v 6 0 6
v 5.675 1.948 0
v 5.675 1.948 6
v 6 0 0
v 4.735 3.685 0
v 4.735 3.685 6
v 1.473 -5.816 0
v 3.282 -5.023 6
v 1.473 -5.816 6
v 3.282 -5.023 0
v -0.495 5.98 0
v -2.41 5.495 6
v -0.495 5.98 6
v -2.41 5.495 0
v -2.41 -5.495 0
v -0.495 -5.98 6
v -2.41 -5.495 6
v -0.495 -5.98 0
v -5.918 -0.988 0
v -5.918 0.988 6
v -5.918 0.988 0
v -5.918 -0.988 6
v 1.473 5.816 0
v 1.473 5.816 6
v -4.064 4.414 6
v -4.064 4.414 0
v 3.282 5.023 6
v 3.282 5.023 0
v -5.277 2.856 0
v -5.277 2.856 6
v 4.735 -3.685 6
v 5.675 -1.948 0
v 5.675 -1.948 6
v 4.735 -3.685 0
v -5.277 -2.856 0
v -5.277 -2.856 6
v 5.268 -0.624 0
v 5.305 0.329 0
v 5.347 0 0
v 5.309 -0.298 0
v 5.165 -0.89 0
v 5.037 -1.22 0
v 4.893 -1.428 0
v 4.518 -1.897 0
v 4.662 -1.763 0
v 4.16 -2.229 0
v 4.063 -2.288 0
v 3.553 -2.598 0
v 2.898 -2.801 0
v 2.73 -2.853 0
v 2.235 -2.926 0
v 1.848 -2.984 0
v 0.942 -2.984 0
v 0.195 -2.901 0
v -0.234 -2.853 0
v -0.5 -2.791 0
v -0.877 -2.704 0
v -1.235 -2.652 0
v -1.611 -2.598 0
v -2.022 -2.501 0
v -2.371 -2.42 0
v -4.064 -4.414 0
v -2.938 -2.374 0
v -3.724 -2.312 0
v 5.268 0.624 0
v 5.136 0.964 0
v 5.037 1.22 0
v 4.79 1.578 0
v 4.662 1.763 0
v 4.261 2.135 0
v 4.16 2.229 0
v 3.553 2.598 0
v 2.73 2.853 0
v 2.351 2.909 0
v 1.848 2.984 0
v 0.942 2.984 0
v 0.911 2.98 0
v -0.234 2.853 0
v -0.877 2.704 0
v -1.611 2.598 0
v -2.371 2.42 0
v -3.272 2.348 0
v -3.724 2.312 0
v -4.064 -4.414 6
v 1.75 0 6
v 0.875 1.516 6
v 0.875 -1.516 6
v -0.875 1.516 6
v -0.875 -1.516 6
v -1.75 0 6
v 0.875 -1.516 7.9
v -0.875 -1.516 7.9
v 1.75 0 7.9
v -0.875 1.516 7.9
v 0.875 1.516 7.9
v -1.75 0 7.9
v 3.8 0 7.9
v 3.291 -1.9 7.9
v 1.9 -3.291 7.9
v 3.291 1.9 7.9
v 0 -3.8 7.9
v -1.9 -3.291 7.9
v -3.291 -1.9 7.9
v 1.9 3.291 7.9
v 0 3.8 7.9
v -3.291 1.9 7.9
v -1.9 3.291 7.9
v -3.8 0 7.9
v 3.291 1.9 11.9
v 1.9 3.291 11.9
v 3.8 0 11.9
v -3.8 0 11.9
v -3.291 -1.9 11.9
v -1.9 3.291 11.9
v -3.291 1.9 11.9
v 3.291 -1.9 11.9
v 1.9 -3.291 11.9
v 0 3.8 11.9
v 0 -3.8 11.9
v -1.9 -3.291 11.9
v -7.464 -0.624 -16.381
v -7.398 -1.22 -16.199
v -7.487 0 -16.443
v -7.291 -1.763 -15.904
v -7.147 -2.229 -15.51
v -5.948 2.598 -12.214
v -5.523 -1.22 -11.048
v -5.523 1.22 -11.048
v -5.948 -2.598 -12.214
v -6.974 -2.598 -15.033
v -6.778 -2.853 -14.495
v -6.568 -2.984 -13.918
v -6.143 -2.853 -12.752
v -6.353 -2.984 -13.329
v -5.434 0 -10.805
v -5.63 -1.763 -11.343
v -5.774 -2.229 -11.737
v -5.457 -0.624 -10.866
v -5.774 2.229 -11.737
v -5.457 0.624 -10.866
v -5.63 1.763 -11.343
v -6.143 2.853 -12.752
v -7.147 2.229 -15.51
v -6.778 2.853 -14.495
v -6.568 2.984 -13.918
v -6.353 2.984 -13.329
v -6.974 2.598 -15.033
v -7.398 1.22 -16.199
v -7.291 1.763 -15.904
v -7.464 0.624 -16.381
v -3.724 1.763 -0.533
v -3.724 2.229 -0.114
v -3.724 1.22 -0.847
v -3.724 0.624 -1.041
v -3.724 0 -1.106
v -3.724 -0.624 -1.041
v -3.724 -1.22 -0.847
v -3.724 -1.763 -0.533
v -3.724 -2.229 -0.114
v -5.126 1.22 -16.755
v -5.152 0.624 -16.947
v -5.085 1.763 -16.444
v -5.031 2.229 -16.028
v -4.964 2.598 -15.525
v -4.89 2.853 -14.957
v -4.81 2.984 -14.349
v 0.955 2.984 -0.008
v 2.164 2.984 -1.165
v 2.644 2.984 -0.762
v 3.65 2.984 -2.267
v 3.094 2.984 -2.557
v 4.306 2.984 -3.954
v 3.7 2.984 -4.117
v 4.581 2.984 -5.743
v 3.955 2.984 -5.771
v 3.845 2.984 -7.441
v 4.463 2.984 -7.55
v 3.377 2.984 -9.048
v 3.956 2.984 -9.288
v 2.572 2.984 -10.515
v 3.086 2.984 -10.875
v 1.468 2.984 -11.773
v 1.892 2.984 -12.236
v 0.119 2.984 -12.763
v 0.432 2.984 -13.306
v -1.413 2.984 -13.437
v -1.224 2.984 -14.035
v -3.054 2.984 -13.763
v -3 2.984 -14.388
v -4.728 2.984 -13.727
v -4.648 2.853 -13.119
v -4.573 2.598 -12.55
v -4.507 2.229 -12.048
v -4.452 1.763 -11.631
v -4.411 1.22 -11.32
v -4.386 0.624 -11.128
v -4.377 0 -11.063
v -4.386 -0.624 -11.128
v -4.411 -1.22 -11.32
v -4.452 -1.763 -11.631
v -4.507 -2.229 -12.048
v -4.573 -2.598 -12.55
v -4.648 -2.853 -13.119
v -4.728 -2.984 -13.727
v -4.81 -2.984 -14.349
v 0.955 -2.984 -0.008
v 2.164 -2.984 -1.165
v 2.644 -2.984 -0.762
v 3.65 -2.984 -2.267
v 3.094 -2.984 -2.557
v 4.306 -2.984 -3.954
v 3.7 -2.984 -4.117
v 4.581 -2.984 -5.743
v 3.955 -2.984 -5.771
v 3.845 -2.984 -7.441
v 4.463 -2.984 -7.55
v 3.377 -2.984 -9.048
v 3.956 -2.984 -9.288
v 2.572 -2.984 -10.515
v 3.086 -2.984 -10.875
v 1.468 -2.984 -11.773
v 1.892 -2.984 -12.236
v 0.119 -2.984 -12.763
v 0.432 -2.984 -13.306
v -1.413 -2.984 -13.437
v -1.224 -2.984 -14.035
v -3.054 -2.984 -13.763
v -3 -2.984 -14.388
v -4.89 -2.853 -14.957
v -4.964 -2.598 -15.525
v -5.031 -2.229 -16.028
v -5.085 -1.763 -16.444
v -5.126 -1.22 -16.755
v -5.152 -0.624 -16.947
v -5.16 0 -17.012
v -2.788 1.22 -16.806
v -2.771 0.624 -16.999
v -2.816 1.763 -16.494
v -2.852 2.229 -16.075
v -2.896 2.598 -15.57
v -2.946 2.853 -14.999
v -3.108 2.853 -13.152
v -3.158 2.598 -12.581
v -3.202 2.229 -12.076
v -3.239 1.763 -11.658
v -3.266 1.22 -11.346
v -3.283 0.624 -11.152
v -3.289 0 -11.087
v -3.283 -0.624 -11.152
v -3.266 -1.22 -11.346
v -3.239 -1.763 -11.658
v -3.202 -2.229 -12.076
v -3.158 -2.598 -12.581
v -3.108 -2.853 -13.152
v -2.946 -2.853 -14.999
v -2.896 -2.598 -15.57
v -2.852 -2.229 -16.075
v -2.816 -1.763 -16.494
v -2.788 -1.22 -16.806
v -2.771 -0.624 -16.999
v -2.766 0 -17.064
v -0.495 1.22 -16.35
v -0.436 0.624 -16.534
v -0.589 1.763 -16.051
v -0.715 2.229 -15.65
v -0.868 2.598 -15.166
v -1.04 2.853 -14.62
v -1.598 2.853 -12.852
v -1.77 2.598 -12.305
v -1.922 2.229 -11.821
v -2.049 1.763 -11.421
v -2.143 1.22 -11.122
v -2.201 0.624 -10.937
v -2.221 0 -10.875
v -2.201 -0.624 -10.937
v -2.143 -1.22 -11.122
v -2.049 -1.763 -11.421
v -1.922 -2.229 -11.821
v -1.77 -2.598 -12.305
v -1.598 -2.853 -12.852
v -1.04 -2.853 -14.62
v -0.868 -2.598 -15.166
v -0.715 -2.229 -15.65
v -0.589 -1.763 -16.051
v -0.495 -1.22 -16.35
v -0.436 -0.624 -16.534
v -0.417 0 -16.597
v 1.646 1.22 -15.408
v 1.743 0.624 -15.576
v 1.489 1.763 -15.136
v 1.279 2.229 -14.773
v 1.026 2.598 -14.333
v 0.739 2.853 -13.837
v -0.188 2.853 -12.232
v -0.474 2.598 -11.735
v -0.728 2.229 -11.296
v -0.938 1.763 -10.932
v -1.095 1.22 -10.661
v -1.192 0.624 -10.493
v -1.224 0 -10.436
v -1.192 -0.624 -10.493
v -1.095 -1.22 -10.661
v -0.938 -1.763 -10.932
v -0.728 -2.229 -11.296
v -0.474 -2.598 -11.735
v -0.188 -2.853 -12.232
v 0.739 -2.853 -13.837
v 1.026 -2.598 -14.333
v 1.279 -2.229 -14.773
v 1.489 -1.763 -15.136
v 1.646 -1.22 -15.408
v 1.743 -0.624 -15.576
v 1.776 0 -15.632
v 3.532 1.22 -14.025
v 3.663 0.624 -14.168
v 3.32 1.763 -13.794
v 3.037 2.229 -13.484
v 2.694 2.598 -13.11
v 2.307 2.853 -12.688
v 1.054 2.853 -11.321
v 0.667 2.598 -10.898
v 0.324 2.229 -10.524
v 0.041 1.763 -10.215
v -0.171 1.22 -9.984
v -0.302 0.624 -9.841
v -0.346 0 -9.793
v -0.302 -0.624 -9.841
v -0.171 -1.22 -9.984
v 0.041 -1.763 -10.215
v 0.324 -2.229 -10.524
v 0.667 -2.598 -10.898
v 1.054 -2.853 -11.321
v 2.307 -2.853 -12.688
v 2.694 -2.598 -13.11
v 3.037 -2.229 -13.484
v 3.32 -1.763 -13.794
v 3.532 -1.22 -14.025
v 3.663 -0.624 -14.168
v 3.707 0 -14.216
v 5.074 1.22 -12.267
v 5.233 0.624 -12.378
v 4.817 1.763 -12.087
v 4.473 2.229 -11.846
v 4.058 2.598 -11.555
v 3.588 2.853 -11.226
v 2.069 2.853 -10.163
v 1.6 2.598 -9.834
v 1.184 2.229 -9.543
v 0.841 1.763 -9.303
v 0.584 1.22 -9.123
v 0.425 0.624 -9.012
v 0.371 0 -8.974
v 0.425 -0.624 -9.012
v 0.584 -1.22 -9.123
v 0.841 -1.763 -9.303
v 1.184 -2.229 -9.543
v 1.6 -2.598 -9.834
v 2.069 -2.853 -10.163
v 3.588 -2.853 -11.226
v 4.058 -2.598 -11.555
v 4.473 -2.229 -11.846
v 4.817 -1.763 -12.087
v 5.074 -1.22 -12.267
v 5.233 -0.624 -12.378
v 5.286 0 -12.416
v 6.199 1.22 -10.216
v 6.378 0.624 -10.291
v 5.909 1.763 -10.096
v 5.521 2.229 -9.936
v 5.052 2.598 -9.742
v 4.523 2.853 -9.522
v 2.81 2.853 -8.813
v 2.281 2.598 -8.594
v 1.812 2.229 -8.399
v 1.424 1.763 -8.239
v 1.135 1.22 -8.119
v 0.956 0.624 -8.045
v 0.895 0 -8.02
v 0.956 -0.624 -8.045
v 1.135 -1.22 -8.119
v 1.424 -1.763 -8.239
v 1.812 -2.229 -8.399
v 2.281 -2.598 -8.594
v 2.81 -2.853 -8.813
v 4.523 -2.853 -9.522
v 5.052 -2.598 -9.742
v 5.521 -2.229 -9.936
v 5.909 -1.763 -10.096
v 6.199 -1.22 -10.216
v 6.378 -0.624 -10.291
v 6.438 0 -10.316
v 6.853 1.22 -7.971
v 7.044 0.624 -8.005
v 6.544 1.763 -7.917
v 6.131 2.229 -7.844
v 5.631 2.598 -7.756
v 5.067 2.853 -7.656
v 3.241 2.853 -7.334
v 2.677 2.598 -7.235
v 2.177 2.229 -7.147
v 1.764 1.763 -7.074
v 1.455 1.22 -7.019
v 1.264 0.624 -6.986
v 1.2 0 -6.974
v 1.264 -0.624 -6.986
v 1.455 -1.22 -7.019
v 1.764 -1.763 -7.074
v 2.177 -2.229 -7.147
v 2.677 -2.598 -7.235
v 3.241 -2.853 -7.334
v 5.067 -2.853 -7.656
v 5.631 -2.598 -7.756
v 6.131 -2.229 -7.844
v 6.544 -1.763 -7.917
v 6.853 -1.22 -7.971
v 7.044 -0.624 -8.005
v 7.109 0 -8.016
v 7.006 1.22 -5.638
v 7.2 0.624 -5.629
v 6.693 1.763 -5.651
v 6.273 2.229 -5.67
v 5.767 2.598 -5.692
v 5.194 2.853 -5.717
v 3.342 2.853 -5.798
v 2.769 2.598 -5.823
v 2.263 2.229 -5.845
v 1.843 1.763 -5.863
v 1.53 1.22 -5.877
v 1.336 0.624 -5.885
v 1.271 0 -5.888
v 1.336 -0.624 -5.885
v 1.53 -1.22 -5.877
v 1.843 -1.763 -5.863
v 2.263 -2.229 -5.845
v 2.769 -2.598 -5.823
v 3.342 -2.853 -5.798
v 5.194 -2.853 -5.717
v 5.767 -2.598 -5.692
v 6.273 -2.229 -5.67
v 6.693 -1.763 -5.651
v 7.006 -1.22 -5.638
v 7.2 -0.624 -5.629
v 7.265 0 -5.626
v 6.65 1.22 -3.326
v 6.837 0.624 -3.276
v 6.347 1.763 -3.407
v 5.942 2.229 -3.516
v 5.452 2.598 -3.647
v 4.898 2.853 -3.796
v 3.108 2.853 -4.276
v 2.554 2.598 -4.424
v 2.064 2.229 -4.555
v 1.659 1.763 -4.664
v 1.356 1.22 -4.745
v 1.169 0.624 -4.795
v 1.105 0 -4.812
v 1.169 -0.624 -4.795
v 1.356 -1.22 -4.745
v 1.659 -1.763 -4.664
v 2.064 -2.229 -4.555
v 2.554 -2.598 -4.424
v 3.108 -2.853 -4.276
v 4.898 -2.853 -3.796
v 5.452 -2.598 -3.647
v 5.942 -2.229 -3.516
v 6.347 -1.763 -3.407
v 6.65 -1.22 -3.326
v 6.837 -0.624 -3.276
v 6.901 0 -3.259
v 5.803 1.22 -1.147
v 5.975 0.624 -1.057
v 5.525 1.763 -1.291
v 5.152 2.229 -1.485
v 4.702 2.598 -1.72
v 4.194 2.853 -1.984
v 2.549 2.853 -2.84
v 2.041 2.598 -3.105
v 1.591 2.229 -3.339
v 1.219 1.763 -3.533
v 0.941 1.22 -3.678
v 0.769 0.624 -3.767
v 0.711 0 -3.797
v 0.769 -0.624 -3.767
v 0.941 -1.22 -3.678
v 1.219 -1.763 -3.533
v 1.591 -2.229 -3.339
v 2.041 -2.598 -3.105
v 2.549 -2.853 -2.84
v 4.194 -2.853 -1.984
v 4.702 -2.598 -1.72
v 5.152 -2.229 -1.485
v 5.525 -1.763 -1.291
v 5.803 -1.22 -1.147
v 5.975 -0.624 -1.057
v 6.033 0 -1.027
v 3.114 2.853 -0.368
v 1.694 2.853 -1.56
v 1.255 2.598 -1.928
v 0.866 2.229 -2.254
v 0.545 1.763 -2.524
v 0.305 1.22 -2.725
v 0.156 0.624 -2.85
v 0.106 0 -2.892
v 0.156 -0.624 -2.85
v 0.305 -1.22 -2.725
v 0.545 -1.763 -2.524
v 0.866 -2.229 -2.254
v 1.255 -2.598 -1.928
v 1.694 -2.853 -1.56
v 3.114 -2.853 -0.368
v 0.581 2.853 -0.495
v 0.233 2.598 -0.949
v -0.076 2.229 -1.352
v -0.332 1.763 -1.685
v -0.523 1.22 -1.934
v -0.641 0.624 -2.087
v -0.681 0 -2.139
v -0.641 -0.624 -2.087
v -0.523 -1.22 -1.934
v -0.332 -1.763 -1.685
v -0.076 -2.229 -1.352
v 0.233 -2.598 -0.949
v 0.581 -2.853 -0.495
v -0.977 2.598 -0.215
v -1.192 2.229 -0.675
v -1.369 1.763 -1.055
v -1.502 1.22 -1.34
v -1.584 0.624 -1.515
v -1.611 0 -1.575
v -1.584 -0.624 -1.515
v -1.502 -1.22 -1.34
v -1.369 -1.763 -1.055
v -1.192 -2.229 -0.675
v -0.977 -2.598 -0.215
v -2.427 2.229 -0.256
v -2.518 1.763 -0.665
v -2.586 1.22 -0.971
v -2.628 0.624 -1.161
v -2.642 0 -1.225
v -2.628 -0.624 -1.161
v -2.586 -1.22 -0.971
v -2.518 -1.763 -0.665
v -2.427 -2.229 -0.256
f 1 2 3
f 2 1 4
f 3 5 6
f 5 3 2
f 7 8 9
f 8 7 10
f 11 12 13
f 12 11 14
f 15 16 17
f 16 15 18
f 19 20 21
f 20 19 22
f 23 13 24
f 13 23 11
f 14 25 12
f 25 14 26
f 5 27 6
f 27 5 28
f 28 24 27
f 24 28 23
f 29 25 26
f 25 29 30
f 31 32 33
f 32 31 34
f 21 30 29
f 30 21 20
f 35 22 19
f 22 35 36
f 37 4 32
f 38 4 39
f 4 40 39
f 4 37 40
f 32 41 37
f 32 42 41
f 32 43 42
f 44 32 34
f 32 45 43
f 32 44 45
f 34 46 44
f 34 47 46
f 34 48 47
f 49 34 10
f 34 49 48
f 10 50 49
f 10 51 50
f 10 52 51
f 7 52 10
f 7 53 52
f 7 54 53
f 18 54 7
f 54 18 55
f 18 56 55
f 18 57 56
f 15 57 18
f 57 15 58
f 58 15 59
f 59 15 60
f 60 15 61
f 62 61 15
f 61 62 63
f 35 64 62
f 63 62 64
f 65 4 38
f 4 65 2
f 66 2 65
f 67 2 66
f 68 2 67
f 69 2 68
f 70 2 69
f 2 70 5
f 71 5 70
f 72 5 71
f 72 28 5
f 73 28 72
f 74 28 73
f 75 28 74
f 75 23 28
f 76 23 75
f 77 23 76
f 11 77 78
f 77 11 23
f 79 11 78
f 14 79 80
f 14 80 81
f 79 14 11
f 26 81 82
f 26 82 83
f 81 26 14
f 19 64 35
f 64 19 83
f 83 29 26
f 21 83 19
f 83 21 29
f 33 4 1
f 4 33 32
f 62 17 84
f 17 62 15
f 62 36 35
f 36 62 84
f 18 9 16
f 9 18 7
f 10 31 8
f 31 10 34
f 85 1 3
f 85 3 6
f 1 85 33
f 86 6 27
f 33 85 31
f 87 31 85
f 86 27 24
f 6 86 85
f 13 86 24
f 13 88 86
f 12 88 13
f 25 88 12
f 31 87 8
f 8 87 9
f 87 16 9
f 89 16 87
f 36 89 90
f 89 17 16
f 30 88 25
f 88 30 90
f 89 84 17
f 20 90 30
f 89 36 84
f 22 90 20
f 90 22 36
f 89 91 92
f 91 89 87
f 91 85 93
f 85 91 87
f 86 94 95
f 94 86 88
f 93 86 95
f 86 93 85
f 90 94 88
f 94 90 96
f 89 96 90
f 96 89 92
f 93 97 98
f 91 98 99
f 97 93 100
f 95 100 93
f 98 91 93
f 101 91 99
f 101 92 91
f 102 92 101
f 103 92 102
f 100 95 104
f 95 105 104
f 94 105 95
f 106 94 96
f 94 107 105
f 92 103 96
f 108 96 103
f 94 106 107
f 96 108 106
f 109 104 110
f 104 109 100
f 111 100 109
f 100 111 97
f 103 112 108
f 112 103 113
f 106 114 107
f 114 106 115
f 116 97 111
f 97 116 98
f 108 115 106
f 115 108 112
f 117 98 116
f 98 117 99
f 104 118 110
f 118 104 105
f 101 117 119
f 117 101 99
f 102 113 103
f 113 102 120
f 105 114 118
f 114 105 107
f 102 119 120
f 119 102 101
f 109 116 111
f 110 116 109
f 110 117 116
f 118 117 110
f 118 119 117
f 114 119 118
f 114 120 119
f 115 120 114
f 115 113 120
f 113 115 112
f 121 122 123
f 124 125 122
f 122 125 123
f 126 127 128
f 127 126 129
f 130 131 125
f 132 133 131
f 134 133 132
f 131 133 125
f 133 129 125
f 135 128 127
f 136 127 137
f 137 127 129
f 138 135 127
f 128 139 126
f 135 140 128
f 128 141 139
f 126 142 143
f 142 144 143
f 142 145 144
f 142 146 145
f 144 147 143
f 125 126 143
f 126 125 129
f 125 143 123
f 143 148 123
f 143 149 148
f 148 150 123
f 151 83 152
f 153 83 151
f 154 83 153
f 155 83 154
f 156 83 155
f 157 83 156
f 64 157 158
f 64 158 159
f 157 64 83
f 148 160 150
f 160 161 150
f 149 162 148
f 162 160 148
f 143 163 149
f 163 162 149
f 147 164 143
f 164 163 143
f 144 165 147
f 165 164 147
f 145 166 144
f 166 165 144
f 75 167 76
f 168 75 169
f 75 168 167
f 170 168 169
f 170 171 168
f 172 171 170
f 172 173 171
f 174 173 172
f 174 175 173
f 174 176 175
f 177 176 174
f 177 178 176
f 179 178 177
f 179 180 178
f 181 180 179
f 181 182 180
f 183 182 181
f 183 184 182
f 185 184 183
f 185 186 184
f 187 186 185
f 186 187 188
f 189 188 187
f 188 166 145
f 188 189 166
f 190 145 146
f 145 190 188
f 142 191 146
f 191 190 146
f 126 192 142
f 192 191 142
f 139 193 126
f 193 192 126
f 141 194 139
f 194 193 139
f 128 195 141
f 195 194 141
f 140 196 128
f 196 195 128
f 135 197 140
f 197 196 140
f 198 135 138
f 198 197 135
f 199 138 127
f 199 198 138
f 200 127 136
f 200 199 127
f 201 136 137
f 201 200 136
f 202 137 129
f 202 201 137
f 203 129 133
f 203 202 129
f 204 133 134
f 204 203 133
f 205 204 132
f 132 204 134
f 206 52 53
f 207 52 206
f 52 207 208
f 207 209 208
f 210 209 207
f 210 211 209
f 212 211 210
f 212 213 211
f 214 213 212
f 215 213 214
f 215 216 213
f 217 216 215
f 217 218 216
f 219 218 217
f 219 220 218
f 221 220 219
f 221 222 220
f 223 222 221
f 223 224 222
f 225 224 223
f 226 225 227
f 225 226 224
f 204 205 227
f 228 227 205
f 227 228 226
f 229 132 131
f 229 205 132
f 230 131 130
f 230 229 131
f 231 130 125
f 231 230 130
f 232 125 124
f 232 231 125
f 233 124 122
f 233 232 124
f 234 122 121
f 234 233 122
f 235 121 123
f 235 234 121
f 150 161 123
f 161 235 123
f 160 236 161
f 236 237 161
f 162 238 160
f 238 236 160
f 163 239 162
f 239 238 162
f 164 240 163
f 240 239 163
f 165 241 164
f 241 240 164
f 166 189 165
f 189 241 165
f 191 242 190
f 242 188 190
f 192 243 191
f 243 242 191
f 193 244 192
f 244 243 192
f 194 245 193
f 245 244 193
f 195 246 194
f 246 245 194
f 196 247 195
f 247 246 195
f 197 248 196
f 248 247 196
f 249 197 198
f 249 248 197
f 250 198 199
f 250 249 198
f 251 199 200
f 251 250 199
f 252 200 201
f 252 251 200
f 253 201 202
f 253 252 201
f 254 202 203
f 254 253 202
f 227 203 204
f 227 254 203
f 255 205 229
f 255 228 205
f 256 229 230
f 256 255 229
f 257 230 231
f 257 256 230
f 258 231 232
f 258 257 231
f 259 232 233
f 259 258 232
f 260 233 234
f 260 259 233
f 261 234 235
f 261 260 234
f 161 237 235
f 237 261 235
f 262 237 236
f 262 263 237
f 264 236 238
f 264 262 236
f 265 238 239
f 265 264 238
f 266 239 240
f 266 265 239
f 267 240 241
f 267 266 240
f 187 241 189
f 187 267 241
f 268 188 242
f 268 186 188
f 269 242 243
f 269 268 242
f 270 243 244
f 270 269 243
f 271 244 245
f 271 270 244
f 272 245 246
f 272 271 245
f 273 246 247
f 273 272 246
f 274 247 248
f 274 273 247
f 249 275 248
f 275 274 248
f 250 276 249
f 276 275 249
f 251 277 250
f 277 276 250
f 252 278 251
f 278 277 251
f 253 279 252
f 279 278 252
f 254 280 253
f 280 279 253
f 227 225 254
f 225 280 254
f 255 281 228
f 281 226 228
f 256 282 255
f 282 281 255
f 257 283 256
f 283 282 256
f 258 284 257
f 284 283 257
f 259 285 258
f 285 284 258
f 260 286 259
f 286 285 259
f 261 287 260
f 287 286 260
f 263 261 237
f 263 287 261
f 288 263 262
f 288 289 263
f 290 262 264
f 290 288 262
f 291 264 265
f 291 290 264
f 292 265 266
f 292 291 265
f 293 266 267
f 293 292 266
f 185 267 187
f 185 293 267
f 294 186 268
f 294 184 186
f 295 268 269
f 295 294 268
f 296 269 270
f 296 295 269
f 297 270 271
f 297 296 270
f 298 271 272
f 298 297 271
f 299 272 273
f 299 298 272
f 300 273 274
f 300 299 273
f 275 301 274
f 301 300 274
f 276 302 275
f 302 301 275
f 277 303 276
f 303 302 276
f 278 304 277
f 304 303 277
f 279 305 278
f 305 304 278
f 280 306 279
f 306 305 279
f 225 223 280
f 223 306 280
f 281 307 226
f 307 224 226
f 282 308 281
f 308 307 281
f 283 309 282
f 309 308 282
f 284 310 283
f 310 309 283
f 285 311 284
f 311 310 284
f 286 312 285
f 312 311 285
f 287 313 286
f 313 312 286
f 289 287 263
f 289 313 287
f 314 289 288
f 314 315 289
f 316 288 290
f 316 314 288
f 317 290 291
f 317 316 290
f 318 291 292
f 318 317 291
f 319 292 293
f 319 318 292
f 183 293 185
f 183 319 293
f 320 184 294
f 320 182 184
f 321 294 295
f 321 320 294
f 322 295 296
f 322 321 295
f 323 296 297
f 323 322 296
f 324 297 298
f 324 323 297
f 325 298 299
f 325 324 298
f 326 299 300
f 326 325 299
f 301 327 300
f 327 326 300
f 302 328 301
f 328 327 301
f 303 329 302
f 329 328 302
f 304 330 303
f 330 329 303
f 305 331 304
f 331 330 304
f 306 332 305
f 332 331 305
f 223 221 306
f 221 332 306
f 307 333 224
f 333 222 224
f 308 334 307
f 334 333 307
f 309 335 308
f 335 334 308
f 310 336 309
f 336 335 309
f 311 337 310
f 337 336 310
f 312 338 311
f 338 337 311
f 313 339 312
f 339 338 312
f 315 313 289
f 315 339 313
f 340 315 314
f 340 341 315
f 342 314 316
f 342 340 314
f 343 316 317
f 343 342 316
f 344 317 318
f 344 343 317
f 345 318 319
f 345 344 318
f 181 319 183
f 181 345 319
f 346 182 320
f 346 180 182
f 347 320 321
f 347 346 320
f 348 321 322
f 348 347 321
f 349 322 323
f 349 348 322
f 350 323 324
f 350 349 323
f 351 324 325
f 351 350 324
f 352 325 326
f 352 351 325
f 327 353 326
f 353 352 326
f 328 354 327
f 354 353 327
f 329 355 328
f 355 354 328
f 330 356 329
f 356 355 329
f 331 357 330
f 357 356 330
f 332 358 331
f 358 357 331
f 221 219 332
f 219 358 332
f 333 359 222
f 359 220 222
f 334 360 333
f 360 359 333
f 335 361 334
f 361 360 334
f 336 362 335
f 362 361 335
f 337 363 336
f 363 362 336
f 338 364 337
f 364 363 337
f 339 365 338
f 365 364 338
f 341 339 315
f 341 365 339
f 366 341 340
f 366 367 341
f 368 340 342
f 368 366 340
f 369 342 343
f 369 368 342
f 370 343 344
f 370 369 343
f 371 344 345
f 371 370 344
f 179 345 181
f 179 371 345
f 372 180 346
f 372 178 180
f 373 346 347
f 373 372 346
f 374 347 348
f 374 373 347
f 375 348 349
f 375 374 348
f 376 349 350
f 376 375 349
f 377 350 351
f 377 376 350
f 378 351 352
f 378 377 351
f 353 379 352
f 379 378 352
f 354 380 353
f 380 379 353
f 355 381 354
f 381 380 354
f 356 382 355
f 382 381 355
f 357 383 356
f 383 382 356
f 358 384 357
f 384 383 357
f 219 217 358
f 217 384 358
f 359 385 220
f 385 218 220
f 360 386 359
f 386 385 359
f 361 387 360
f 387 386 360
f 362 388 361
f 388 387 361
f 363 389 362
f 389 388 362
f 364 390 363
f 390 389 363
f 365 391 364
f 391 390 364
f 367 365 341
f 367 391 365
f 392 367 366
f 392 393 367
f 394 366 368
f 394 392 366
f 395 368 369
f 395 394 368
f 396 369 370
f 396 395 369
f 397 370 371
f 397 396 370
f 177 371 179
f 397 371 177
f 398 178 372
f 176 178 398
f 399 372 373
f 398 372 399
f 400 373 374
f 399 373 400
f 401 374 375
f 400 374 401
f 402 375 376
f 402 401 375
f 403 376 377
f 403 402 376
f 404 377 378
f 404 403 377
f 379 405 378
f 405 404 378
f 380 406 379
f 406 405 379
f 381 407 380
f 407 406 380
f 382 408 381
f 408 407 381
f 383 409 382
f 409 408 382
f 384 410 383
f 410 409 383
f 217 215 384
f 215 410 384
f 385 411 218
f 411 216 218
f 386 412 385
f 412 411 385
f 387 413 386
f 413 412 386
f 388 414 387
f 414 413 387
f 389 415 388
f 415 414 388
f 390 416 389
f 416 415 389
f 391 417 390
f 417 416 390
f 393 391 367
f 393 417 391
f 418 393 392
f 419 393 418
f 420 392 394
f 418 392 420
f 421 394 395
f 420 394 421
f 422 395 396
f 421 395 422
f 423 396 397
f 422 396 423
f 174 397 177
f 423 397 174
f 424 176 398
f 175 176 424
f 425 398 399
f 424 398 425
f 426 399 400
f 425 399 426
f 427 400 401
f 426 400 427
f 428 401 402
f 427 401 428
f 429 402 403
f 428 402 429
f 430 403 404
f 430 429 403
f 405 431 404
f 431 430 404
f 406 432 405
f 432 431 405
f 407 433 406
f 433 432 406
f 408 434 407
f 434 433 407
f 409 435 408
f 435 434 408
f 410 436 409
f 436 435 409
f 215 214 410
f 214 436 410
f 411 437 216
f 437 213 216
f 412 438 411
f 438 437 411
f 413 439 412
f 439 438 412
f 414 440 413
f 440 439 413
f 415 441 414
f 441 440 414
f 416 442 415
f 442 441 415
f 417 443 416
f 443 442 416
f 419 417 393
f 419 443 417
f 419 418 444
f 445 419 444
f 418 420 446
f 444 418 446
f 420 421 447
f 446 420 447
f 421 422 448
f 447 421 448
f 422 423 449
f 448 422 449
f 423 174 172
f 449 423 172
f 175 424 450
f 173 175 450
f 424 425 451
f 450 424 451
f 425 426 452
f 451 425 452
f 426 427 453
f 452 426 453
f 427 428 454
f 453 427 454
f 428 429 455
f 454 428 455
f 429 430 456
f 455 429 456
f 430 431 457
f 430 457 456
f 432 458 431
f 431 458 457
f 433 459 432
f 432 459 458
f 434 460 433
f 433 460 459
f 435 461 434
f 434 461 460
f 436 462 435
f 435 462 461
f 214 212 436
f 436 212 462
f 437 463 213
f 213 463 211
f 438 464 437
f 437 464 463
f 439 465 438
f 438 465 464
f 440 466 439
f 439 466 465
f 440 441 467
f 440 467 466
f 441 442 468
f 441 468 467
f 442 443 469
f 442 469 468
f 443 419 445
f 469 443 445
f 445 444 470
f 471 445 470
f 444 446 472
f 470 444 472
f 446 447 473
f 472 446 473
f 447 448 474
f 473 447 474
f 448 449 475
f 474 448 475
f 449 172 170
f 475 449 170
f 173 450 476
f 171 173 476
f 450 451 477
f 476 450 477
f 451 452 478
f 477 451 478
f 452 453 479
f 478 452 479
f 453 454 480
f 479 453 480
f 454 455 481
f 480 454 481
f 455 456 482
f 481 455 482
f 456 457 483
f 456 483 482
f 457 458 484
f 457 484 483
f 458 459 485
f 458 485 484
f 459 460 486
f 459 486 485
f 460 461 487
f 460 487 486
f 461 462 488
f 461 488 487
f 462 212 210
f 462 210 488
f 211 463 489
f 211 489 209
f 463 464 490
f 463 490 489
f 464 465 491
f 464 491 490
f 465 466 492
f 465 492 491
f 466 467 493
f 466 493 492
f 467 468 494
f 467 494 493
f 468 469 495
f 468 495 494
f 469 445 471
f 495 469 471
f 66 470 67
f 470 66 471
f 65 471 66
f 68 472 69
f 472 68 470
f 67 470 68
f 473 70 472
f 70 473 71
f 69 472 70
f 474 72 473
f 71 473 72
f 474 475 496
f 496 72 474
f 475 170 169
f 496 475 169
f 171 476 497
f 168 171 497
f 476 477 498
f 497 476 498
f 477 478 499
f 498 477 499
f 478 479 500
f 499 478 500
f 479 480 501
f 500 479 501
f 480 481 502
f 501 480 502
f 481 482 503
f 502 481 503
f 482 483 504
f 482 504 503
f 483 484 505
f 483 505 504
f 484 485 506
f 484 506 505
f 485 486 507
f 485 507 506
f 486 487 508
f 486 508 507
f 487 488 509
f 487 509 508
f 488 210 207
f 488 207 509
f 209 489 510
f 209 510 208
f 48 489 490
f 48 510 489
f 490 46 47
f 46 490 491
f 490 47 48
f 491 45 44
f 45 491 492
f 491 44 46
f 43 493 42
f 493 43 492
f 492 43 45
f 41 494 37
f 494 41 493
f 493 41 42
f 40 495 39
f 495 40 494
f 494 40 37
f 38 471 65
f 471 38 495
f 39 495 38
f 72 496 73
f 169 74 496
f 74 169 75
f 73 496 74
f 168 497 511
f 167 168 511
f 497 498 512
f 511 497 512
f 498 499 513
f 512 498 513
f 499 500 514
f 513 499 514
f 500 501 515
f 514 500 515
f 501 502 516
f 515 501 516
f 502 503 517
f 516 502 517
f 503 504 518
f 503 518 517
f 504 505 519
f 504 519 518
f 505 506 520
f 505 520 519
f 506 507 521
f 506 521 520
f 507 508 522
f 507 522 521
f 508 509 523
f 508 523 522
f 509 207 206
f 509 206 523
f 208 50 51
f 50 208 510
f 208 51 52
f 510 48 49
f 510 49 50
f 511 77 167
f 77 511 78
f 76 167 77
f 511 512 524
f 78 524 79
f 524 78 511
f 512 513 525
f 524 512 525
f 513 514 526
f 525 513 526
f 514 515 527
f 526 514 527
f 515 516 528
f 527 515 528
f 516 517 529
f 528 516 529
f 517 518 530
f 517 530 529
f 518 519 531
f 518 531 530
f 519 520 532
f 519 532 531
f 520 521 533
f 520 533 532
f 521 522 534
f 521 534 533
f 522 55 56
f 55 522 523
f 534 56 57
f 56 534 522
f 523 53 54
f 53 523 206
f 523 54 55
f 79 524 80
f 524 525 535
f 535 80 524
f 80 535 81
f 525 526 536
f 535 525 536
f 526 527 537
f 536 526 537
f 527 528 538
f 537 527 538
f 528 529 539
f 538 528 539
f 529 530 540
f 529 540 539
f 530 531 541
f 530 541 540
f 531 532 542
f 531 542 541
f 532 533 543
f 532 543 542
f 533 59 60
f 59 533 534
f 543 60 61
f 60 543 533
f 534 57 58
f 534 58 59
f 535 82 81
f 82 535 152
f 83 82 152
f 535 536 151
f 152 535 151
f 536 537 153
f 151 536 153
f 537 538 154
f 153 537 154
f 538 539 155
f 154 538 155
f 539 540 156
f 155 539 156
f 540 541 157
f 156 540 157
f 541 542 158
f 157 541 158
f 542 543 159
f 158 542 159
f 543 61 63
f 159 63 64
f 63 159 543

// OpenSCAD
if($preview) {
    $fn = 20;
} else {
    $fn = 100;
}

module clip() {
    
    hole_dia = 8;
    slot_width = 3.5;
    slot_depth = 8;
    thickness = 2;
    
    t = 0.1;
    
    module hook() {
eps = 0.01;
        
       translate([-15,0,-2]) 
        rotate([90,110,0])
        scale(0.2) {
        translate([eps, 60, 0])
        rotate_extrude(angle=200, convexity=10)
        translate([40, 0]) 
           circle(15);
           /*
rotate_extrude(angle=90, convexity=10)
   translate([20, 0]) circle(10);
translate([20, eps, 0])
   rotate([90, 0, 0]) cylinder(r=10, h=80+eps);*/
        }
    }
    
    module base() {
        
        cylinder(h=6, d=hole_dia*1.5);
        
        translate([0,0,6-t])
        cylinder(h=thickness,d=slot_width);
        
        translate([0,0,6+thickness-t])
        cylinder(h=4,d=hole_dia - 0.4);
        
    }
    
    base();
    hook();
    
    
}

clip();
